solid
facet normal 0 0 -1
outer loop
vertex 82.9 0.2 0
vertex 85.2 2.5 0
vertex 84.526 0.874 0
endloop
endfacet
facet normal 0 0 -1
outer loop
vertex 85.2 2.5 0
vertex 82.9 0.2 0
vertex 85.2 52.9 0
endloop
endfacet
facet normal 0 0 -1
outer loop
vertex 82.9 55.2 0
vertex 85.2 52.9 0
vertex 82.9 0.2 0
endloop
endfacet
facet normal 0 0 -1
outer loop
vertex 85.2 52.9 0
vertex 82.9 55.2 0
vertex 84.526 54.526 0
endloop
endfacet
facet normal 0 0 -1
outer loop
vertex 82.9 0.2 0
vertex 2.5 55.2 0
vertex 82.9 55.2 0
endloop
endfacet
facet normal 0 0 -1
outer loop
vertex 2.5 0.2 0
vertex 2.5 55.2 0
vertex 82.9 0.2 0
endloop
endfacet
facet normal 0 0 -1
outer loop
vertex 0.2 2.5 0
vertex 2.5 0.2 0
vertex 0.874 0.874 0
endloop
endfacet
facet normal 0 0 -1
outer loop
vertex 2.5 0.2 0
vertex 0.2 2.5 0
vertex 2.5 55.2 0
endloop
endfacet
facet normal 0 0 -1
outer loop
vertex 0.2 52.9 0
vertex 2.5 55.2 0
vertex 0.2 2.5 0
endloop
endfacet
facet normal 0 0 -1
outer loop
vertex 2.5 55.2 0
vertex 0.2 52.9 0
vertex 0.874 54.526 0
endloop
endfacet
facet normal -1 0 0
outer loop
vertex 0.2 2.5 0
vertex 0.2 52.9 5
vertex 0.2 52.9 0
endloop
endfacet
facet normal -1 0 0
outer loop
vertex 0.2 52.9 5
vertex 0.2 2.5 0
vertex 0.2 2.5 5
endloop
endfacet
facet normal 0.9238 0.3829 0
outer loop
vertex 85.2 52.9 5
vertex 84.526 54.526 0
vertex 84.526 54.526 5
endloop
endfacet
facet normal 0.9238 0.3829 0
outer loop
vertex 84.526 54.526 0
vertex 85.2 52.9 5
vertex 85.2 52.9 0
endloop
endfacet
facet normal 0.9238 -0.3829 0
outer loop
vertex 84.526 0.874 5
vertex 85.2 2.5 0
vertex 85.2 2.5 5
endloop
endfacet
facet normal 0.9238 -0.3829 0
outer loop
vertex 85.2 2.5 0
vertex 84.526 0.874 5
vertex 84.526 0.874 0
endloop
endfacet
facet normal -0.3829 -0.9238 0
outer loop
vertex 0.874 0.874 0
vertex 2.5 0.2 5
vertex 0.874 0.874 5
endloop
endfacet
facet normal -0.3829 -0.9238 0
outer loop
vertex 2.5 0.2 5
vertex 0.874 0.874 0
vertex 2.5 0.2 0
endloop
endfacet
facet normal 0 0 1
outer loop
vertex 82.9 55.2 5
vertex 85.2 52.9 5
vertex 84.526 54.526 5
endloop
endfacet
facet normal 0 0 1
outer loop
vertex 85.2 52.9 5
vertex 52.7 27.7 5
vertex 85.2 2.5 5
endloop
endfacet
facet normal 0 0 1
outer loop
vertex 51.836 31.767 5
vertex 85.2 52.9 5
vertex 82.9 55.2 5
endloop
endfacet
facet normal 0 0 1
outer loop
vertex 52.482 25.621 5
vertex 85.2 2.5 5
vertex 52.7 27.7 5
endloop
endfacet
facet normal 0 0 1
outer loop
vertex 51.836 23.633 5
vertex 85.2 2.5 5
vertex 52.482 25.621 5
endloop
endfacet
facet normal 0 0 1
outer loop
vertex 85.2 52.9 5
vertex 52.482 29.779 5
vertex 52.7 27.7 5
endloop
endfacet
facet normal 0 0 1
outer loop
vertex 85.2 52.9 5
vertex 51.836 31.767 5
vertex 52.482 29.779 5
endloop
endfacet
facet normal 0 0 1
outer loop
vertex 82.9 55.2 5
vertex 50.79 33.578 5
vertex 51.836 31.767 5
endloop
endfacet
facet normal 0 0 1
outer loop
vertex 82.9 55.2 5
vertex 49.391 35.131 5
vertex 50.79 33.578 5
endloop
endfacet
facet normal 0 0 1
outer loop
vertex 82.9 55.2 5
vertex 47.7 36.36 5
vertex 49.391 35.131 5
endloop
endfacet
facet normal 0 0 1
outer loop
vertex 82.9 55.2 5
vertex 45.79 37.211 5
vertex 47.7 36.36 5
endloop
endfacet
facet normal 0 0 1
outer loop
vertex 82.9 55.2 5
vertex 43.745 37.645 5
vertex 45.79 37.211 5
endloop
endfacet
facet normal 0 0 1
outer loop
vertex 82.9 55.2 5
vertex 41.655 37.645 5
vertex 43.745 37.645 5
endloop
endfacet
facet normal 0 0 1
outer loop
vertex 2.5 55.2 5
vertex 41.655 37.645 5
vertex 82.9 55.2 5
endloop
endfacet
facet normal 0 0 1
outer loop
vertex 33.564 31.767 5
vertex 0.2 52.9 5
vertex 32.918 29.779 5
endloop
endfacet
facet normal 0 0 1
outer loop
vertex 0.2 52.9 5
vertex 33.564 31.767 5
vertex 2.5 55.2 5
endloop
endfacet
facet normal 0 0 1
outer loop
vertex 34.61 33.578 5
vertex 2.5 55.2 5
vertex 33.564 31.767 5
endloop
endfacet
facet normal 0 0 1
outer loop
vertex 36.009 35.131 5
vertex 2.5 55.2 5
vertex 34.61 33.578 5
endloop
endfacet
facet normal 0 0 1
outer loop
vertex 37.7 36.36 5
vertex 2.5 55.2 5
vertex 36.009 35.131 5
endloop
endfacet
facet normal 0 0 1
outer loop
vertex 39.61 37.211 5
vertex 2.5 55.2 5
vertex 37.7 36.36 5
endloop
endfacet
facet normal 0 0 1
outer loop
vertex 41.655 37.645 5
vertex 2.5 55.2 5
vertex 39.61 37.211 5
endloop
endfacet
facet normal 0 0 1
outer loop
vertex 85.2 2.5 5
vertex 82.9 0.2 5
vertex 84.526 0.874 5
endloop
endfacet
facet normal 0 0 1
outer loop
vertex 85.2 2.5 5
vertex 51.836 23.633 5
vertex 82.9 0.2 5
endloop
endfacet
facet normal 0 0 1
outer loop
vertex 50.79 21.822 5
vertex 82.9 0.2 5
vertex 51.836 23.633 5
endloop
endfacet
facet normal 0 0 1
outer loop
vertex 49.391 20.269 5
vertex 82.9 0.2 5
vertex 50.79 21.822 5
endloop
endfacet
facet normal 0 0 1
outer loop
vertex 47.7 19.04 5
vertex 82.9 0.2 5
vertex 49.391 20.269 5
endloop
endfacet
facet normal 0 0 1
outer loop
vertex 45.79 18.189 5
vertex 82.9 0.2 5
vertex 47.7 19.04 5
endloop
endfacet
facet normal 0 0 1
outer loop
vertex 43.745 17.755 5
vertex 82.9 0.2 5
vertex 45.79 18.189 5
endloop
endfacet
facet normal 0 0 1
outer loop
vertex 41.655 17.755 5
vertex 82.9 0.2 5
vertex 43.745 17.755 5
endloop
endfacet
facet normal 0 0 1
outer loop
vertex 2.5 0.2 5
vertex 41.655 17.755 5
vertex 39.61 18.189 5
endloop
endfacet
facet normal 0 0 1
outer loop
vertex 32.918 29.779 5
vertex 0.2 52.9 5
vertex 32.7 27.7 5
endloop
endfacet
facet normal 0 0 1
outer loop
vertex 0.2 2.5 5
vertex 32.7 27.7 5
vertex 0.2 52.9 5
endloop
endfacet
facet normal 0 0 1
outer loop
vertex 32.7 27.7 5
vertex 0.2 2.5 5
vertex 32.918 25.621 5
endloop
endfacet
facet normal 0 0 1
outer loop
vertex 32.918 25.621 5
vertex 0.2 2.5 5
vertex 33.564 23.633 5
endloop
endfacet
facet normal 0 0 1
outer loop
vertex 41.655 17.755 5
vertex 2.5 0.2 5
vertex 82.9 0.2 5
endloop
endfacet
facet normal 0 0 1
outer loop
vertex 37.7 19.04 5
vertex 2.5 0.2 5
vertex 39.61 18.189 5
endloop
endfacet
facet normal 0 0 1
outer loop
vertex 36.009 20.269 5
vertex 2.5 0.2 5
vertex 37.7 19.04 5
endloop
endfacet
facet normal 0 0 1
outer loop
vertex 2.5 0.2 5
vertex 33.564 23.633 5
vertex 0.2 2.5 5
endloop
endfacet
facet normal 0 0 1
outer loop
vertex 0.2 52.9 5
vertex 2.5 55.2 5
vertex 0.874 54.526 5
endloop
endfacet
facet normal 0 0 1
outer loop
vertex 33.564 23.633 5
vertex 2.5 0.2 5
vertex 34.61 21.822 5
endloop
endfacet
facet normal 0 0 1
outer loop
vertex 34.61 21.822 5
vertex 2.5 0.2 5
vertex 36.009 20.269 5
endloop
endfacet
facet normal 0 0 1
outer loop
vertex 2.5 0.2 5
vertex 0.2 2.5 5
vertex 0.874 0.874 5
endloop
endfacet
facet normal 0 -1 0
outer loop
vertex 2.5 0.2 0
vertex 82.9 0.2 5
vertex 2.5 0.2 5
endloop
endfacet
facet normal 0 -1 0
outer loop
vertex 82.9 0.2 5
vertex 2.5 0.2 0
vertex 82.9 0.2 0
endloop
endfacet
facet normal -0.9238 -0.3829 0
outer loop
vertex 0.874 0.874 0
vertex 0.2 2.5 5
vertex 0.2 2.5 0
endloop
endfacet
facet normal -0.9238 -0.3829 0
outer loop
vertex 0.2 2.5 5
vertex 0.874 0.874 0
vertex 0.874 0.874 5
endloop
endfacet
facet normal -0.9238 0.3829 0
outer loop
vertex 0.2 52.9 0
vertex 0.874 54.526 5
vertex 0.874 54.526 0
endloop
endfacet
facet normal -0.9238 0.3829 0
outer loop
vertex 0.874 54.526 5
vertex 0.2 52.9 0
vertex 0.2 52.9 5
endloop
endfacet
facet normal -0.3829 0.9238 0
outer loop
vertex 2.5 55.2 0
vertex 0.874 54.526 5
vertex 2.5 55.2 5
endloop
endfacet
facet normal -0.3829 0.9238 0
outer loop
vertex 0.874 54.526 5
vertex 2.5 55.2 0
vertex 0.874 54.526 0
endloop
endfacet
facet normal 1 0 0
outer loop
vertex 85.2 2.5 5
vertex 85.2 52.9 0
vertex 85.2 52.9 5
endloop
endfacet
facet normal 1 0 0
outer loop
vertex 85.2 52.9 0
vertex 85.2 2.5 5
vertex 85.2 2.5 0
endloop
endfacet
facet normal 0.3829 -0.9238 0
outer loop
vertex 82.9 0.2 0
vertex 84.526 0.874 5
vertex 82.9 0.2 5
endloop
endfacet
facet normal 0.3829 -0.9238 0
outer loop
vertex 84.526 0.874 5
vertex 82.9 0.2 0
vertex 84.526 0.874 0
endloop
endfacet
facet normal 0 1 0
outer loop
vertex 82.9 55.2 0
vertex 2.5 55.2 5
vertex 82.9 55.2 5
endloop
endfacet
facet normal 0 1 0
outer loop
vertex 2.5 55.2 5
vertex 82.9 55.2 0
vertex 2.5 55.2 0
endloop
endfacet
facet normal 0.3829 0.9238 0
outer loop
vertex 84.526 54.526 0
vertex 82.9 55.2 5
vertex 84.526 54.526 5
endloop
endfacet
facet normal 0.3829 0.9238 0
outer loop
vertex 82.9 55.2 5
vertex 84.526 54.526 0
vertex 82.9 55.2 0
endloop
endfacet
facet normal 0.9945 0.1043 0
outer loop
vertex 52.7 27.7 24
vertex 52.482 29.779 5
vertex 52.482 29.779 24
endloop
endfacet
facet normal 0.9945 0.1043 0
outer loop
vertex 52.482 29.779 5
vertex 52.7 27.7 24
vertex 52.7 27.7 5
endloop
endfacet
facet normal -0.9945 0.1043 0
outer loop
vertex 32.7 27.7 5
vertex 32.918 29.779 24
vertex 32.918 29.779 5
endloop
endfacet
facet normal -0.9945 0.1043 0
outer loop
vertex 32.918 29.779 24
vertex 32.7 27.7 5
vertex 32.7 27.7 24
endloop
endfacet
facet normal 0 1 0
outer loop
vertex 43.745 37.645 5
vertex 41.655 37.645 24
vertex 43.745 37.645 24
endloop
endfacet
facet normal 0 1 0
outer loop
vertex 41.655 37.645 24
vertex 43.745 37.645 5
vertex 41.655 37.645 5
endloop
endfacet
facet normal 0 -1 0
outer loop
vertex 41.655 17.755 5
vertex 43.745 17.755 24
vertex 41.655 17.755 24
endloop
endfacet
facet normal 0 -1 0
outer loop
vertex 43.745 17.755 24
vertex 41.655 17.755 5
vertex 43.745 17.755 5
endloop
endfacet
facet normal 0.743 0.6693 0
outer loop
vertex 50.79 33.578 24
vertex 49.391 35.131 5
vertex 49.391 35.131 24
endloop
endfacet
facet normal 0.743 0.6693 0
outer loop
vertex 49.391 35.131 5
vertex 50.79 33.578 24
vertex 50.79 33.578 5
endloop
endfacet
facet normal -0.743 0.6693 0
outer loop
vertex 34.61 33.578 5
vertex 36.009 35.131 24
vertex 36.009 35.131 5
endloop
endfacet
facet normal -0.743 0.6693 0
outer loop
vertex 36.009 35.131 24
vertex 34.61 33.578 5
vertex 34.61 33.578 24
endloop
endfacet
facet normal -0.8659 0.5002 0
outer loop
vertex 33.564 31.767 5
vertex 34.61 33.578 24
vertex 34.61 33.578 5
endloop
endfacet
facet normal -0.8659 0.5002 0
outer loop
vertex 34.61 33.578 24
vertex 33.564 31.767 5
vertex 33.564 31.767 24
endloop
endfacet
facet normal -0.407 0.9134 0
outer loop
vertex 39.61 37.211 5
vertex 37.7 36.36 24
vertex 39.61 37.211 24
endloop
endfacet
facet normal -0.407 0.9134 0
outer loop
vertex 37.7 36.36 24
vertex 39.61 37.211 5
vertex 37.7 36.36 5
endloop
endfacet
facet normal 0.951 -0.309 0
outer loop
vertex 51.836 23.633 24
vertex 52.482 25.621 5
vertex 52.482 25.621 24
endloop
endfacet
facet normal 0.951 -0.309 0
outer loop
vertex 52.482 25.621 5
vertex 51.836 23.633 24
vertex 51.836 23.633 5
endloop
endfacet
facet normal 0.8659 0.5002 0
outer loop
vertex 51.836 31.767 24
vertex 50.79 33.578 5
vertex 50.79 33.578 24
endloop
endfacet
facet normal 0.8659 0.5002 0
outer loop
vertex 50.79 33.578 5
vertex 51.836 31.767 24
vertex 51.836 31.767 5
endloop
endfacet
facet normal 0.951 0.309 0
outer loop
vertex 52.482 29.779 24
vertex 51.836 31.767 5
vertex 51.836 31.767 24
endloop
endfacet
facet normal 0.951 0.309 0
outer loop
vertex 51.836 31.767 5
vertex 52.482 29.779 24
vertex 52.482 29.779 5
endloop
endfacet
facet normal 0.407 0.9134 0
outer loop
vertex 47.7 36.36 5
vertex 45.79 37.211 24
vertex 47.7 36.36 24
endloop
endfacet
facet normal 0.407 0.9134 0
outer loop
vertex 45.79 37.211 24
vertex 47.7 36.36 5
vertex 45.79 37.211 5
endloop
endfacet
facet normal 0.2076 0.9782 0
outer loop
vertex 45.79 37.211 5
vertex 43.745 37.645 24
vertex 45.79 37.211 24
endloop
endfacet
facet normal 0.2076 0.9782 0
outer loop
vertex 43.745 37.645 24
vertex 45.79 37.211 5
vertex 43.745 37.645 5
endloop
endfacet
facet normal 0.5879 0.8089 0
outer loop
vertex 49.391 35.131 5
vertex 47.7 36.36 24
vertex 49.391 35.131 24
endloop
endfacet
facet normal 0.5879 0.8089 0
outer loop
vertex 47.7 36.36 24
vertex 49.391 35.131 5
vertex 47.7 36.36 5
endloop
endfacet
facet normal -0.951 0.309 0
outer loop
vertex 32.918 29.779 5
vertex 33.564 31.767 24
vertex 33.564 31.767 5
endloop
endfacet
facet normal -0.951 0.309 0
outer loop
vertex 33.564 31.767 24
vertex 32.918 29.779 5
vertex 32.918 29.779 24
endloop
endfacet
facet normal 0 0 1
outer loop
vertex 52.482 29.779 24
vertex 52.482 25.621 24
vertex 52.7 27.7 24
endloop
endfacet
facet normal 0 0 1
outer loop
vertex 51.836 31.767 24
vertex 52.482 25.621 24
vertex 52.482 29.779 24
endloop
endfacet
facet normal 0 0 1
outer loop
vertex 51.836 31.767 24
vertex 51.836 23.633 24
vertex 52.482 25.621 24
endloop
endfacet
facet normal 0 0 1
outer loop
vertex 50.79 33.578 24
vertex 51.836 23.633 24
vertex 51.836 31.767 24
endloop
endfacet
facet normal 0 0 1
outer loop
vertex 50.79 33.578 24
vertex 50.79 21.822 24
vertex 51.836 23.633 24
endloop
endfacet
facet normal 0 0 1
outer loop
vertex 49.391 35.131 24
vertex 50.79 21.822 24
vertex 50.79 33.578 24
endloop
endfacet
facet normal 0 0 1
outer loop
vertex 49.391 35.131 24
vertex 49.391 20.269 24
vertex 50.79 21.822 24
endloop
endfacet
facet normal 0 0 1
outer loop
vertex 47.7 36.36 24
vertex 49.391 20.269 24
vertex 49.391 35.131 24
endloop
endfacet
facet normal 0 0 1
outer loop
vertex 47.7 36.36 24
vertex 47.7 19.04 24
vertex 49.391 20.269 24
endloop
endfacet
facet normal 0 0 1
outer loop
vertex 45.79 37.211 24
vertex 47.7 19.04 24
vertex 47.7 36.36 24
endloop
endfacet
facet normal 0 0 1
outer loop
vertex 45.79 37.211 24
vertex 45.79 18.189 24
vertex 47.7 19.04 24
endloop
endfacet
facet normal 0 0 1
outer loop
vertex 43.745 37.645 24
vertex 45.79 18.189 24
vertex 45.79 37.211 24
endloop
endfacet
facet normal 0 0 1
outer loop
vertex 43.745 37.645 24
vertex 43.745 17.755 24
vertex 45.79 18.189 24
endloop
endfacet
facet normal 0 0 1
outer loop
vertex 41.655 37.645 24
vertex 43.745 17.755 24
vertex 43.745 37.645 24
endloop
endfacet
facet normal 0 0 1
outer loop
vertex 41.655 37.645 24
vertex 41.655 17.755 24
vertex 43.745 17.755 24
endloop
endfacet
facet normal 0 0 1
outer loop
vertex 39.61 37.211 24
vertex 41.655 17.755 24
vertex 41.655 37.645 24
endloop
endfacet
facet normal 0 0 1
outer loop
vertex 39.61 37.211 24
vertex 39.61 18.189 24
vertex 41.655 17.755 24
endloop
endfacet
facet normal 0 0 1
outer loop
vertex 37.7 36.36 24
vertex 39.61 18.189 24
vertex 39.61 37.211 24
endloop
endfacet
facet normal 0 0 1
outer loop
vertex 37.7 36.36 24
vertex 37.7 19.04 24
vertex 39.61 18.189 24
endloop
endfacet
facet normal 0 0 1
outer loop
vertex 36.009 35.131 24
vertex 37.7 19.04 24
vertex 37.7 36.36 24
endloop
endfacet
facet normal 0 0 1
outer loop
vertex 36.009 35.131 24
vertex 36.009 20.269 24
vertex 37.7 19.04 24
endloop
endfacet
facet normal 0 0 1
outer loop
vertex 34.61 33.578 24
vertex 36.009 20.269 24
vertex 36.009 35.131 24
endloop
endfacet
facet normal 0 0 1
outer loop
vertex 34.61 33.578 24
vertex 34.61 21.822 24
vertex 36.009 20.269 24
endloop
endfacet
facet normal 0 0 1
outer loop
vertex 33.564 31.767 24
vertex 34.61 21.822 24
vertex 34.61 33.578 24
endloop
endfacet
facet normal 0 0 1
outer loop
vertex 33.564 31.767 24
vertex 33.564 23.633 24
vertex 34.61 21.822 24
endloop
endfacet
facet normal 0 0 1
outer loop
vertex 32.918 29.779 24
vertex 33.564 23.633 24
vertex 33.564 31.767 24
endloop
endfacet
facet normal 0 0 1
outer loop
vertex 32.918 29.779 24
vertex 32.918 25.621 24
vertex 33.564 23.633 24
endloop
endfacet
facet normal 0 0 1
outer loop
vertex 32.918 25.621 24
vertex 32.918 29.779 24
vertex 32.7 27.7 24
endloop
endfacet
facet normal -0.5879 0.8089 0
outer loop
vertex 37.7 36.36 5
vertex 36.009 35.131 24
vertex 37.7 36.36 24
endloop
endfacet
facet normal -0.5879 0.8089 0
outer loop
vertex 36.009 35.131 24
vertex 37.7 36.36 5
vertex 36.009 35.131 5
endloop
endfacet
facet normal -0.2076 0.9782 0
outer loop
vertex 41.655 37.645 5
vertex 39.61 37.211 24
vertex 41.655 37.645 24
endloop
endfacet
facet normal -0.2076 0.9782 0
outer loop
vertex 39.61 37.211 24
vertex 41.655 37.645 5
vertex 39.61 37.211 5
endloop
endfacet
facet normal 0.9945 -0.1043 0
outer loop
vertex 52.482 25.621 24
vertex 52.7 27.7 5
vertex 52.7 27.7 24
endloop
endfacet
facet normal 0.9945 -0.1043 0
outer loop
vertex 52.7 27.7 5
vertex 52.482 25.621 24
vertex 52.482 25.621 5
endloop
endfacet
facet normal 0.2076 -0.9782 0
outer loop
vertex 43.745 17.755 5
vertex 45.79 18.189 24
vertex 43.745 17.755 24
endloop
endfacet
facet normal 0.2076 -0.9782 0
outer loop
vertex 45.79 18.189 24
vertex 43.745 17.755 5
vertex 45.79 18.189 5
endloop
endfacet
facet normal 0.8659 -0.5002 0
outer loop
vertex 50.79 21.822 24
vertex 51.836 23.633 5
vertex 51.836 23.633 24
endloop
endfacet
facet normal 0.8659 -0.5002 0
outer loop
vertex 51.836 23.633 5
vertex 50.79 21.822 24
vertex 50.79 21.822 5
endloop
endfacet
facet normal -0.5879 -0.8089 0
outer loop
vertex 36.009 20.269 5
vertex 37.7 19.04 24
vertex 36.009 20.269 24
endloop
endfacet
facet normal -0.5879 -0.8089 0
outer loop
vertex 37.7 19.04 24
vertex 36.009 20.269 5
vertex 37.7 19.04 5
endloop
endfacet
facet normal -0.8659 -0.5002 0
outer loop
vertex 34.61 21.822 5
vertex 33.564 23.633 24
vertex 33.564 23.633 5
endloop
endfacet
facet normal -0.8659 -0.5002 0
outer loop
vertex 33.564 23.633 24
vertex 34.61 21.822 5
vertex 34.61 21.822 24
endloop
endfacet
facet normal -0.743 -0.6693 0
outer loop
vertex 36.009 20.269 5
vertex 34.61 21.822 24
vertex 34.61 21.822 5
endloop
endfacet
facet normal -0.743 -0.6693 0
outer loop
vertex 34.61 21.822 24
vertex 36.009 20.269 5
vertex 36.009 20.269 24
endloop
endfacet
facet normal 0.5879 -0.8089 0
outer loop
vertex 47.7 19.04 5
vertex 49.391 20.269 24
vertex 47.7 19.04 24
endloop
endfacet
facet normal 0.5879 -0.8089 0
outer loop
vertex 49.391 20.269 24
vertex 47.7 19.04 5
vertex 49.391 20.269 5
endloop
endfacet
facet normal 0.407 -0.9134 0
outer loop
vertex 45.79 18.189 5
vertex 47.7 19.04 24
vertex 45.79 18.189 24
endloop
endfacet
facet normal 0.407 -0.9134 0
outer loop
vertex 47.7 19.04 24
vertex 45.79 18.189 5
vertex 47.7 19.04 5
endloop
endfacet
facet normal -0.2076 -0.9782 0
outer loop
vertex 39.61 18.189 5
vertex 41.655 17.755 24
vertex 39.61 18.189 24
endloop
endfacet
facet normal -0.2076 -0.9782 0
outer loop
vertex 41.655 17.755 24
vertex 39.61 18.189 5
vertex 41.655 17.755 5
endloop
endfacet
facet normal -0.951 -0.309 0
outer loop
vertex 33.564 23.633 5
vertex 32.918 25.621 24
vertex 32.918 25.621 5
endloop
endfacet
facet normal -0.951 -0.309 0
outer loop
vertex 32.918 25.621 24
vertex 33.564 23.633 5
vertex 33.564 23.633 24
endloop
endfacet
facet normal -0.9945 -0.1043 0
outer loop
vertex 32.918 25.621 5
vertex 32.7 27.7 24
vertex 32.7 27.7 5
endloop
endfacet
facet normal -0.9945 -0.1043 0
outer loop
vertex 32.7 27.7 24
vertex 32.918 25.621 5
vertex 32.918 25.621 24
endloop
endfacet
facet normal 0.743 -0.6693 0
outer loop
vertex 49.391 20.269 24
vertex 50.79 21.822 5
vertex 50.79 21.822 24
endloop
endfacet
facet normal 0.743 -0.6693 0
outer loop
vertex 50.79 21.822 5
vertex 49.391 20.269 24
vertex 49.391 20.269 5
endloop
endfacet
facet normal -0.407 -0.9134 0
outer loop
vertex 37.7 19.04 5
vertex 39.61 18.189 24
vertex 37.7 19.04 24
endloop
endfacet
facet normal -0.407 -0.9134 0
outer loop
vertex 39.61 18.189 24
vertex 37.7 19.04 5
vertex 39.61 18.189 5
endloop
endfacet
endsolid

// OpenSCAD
/////////////////////////////////////////////////////////////////////////////////
// Lid for the housing box for UppSense first tries.
//
// Author:              Maximilian Stiefel
// Last modification:   23.05.2017
/////////////////////////////////////////////////////////////////////////////////

/////////////////////////////////////////////////////////////////////////////////
// Vars
/////////////////////////////////////////////////////////////////////////////////
allowance_pcb = 0.2; 
thickness = 5;
length = 80 +  2*allowance_pcb;
width = 50 + 2*allowance_pcb;
lid_depth = 5;
my_color = "DarkRed";
knob_r = 10;
knob_h = 20;
allowance_lid = 0.2;

color(my_color, 0.8) union(){
	//cube([length + thickness, width + thickness, lid_depth]);
	translate([thickness/2, thickness/2, 0])
        hull()
        {
                cylinder(r=thickness/2-allowance_lid, h=lid_depth);
                translate([0, width, 0])
                cylinder(r=thickness/2-allowance_lid, h=lid_depth);
                translate([length, 0, 0])
                cylinder(r=thickness/2-allowance_lid, h=lid_depth);
                translate([length, width, 0])
                cylinder(r=thickness/2-allowance_lid, h=lid_depth);

        }
	translate([(length + thickness)/2, (width + thickness)/2, lid_depth-1])
	cylinder(r=knob_r,h=knob_h);
}
